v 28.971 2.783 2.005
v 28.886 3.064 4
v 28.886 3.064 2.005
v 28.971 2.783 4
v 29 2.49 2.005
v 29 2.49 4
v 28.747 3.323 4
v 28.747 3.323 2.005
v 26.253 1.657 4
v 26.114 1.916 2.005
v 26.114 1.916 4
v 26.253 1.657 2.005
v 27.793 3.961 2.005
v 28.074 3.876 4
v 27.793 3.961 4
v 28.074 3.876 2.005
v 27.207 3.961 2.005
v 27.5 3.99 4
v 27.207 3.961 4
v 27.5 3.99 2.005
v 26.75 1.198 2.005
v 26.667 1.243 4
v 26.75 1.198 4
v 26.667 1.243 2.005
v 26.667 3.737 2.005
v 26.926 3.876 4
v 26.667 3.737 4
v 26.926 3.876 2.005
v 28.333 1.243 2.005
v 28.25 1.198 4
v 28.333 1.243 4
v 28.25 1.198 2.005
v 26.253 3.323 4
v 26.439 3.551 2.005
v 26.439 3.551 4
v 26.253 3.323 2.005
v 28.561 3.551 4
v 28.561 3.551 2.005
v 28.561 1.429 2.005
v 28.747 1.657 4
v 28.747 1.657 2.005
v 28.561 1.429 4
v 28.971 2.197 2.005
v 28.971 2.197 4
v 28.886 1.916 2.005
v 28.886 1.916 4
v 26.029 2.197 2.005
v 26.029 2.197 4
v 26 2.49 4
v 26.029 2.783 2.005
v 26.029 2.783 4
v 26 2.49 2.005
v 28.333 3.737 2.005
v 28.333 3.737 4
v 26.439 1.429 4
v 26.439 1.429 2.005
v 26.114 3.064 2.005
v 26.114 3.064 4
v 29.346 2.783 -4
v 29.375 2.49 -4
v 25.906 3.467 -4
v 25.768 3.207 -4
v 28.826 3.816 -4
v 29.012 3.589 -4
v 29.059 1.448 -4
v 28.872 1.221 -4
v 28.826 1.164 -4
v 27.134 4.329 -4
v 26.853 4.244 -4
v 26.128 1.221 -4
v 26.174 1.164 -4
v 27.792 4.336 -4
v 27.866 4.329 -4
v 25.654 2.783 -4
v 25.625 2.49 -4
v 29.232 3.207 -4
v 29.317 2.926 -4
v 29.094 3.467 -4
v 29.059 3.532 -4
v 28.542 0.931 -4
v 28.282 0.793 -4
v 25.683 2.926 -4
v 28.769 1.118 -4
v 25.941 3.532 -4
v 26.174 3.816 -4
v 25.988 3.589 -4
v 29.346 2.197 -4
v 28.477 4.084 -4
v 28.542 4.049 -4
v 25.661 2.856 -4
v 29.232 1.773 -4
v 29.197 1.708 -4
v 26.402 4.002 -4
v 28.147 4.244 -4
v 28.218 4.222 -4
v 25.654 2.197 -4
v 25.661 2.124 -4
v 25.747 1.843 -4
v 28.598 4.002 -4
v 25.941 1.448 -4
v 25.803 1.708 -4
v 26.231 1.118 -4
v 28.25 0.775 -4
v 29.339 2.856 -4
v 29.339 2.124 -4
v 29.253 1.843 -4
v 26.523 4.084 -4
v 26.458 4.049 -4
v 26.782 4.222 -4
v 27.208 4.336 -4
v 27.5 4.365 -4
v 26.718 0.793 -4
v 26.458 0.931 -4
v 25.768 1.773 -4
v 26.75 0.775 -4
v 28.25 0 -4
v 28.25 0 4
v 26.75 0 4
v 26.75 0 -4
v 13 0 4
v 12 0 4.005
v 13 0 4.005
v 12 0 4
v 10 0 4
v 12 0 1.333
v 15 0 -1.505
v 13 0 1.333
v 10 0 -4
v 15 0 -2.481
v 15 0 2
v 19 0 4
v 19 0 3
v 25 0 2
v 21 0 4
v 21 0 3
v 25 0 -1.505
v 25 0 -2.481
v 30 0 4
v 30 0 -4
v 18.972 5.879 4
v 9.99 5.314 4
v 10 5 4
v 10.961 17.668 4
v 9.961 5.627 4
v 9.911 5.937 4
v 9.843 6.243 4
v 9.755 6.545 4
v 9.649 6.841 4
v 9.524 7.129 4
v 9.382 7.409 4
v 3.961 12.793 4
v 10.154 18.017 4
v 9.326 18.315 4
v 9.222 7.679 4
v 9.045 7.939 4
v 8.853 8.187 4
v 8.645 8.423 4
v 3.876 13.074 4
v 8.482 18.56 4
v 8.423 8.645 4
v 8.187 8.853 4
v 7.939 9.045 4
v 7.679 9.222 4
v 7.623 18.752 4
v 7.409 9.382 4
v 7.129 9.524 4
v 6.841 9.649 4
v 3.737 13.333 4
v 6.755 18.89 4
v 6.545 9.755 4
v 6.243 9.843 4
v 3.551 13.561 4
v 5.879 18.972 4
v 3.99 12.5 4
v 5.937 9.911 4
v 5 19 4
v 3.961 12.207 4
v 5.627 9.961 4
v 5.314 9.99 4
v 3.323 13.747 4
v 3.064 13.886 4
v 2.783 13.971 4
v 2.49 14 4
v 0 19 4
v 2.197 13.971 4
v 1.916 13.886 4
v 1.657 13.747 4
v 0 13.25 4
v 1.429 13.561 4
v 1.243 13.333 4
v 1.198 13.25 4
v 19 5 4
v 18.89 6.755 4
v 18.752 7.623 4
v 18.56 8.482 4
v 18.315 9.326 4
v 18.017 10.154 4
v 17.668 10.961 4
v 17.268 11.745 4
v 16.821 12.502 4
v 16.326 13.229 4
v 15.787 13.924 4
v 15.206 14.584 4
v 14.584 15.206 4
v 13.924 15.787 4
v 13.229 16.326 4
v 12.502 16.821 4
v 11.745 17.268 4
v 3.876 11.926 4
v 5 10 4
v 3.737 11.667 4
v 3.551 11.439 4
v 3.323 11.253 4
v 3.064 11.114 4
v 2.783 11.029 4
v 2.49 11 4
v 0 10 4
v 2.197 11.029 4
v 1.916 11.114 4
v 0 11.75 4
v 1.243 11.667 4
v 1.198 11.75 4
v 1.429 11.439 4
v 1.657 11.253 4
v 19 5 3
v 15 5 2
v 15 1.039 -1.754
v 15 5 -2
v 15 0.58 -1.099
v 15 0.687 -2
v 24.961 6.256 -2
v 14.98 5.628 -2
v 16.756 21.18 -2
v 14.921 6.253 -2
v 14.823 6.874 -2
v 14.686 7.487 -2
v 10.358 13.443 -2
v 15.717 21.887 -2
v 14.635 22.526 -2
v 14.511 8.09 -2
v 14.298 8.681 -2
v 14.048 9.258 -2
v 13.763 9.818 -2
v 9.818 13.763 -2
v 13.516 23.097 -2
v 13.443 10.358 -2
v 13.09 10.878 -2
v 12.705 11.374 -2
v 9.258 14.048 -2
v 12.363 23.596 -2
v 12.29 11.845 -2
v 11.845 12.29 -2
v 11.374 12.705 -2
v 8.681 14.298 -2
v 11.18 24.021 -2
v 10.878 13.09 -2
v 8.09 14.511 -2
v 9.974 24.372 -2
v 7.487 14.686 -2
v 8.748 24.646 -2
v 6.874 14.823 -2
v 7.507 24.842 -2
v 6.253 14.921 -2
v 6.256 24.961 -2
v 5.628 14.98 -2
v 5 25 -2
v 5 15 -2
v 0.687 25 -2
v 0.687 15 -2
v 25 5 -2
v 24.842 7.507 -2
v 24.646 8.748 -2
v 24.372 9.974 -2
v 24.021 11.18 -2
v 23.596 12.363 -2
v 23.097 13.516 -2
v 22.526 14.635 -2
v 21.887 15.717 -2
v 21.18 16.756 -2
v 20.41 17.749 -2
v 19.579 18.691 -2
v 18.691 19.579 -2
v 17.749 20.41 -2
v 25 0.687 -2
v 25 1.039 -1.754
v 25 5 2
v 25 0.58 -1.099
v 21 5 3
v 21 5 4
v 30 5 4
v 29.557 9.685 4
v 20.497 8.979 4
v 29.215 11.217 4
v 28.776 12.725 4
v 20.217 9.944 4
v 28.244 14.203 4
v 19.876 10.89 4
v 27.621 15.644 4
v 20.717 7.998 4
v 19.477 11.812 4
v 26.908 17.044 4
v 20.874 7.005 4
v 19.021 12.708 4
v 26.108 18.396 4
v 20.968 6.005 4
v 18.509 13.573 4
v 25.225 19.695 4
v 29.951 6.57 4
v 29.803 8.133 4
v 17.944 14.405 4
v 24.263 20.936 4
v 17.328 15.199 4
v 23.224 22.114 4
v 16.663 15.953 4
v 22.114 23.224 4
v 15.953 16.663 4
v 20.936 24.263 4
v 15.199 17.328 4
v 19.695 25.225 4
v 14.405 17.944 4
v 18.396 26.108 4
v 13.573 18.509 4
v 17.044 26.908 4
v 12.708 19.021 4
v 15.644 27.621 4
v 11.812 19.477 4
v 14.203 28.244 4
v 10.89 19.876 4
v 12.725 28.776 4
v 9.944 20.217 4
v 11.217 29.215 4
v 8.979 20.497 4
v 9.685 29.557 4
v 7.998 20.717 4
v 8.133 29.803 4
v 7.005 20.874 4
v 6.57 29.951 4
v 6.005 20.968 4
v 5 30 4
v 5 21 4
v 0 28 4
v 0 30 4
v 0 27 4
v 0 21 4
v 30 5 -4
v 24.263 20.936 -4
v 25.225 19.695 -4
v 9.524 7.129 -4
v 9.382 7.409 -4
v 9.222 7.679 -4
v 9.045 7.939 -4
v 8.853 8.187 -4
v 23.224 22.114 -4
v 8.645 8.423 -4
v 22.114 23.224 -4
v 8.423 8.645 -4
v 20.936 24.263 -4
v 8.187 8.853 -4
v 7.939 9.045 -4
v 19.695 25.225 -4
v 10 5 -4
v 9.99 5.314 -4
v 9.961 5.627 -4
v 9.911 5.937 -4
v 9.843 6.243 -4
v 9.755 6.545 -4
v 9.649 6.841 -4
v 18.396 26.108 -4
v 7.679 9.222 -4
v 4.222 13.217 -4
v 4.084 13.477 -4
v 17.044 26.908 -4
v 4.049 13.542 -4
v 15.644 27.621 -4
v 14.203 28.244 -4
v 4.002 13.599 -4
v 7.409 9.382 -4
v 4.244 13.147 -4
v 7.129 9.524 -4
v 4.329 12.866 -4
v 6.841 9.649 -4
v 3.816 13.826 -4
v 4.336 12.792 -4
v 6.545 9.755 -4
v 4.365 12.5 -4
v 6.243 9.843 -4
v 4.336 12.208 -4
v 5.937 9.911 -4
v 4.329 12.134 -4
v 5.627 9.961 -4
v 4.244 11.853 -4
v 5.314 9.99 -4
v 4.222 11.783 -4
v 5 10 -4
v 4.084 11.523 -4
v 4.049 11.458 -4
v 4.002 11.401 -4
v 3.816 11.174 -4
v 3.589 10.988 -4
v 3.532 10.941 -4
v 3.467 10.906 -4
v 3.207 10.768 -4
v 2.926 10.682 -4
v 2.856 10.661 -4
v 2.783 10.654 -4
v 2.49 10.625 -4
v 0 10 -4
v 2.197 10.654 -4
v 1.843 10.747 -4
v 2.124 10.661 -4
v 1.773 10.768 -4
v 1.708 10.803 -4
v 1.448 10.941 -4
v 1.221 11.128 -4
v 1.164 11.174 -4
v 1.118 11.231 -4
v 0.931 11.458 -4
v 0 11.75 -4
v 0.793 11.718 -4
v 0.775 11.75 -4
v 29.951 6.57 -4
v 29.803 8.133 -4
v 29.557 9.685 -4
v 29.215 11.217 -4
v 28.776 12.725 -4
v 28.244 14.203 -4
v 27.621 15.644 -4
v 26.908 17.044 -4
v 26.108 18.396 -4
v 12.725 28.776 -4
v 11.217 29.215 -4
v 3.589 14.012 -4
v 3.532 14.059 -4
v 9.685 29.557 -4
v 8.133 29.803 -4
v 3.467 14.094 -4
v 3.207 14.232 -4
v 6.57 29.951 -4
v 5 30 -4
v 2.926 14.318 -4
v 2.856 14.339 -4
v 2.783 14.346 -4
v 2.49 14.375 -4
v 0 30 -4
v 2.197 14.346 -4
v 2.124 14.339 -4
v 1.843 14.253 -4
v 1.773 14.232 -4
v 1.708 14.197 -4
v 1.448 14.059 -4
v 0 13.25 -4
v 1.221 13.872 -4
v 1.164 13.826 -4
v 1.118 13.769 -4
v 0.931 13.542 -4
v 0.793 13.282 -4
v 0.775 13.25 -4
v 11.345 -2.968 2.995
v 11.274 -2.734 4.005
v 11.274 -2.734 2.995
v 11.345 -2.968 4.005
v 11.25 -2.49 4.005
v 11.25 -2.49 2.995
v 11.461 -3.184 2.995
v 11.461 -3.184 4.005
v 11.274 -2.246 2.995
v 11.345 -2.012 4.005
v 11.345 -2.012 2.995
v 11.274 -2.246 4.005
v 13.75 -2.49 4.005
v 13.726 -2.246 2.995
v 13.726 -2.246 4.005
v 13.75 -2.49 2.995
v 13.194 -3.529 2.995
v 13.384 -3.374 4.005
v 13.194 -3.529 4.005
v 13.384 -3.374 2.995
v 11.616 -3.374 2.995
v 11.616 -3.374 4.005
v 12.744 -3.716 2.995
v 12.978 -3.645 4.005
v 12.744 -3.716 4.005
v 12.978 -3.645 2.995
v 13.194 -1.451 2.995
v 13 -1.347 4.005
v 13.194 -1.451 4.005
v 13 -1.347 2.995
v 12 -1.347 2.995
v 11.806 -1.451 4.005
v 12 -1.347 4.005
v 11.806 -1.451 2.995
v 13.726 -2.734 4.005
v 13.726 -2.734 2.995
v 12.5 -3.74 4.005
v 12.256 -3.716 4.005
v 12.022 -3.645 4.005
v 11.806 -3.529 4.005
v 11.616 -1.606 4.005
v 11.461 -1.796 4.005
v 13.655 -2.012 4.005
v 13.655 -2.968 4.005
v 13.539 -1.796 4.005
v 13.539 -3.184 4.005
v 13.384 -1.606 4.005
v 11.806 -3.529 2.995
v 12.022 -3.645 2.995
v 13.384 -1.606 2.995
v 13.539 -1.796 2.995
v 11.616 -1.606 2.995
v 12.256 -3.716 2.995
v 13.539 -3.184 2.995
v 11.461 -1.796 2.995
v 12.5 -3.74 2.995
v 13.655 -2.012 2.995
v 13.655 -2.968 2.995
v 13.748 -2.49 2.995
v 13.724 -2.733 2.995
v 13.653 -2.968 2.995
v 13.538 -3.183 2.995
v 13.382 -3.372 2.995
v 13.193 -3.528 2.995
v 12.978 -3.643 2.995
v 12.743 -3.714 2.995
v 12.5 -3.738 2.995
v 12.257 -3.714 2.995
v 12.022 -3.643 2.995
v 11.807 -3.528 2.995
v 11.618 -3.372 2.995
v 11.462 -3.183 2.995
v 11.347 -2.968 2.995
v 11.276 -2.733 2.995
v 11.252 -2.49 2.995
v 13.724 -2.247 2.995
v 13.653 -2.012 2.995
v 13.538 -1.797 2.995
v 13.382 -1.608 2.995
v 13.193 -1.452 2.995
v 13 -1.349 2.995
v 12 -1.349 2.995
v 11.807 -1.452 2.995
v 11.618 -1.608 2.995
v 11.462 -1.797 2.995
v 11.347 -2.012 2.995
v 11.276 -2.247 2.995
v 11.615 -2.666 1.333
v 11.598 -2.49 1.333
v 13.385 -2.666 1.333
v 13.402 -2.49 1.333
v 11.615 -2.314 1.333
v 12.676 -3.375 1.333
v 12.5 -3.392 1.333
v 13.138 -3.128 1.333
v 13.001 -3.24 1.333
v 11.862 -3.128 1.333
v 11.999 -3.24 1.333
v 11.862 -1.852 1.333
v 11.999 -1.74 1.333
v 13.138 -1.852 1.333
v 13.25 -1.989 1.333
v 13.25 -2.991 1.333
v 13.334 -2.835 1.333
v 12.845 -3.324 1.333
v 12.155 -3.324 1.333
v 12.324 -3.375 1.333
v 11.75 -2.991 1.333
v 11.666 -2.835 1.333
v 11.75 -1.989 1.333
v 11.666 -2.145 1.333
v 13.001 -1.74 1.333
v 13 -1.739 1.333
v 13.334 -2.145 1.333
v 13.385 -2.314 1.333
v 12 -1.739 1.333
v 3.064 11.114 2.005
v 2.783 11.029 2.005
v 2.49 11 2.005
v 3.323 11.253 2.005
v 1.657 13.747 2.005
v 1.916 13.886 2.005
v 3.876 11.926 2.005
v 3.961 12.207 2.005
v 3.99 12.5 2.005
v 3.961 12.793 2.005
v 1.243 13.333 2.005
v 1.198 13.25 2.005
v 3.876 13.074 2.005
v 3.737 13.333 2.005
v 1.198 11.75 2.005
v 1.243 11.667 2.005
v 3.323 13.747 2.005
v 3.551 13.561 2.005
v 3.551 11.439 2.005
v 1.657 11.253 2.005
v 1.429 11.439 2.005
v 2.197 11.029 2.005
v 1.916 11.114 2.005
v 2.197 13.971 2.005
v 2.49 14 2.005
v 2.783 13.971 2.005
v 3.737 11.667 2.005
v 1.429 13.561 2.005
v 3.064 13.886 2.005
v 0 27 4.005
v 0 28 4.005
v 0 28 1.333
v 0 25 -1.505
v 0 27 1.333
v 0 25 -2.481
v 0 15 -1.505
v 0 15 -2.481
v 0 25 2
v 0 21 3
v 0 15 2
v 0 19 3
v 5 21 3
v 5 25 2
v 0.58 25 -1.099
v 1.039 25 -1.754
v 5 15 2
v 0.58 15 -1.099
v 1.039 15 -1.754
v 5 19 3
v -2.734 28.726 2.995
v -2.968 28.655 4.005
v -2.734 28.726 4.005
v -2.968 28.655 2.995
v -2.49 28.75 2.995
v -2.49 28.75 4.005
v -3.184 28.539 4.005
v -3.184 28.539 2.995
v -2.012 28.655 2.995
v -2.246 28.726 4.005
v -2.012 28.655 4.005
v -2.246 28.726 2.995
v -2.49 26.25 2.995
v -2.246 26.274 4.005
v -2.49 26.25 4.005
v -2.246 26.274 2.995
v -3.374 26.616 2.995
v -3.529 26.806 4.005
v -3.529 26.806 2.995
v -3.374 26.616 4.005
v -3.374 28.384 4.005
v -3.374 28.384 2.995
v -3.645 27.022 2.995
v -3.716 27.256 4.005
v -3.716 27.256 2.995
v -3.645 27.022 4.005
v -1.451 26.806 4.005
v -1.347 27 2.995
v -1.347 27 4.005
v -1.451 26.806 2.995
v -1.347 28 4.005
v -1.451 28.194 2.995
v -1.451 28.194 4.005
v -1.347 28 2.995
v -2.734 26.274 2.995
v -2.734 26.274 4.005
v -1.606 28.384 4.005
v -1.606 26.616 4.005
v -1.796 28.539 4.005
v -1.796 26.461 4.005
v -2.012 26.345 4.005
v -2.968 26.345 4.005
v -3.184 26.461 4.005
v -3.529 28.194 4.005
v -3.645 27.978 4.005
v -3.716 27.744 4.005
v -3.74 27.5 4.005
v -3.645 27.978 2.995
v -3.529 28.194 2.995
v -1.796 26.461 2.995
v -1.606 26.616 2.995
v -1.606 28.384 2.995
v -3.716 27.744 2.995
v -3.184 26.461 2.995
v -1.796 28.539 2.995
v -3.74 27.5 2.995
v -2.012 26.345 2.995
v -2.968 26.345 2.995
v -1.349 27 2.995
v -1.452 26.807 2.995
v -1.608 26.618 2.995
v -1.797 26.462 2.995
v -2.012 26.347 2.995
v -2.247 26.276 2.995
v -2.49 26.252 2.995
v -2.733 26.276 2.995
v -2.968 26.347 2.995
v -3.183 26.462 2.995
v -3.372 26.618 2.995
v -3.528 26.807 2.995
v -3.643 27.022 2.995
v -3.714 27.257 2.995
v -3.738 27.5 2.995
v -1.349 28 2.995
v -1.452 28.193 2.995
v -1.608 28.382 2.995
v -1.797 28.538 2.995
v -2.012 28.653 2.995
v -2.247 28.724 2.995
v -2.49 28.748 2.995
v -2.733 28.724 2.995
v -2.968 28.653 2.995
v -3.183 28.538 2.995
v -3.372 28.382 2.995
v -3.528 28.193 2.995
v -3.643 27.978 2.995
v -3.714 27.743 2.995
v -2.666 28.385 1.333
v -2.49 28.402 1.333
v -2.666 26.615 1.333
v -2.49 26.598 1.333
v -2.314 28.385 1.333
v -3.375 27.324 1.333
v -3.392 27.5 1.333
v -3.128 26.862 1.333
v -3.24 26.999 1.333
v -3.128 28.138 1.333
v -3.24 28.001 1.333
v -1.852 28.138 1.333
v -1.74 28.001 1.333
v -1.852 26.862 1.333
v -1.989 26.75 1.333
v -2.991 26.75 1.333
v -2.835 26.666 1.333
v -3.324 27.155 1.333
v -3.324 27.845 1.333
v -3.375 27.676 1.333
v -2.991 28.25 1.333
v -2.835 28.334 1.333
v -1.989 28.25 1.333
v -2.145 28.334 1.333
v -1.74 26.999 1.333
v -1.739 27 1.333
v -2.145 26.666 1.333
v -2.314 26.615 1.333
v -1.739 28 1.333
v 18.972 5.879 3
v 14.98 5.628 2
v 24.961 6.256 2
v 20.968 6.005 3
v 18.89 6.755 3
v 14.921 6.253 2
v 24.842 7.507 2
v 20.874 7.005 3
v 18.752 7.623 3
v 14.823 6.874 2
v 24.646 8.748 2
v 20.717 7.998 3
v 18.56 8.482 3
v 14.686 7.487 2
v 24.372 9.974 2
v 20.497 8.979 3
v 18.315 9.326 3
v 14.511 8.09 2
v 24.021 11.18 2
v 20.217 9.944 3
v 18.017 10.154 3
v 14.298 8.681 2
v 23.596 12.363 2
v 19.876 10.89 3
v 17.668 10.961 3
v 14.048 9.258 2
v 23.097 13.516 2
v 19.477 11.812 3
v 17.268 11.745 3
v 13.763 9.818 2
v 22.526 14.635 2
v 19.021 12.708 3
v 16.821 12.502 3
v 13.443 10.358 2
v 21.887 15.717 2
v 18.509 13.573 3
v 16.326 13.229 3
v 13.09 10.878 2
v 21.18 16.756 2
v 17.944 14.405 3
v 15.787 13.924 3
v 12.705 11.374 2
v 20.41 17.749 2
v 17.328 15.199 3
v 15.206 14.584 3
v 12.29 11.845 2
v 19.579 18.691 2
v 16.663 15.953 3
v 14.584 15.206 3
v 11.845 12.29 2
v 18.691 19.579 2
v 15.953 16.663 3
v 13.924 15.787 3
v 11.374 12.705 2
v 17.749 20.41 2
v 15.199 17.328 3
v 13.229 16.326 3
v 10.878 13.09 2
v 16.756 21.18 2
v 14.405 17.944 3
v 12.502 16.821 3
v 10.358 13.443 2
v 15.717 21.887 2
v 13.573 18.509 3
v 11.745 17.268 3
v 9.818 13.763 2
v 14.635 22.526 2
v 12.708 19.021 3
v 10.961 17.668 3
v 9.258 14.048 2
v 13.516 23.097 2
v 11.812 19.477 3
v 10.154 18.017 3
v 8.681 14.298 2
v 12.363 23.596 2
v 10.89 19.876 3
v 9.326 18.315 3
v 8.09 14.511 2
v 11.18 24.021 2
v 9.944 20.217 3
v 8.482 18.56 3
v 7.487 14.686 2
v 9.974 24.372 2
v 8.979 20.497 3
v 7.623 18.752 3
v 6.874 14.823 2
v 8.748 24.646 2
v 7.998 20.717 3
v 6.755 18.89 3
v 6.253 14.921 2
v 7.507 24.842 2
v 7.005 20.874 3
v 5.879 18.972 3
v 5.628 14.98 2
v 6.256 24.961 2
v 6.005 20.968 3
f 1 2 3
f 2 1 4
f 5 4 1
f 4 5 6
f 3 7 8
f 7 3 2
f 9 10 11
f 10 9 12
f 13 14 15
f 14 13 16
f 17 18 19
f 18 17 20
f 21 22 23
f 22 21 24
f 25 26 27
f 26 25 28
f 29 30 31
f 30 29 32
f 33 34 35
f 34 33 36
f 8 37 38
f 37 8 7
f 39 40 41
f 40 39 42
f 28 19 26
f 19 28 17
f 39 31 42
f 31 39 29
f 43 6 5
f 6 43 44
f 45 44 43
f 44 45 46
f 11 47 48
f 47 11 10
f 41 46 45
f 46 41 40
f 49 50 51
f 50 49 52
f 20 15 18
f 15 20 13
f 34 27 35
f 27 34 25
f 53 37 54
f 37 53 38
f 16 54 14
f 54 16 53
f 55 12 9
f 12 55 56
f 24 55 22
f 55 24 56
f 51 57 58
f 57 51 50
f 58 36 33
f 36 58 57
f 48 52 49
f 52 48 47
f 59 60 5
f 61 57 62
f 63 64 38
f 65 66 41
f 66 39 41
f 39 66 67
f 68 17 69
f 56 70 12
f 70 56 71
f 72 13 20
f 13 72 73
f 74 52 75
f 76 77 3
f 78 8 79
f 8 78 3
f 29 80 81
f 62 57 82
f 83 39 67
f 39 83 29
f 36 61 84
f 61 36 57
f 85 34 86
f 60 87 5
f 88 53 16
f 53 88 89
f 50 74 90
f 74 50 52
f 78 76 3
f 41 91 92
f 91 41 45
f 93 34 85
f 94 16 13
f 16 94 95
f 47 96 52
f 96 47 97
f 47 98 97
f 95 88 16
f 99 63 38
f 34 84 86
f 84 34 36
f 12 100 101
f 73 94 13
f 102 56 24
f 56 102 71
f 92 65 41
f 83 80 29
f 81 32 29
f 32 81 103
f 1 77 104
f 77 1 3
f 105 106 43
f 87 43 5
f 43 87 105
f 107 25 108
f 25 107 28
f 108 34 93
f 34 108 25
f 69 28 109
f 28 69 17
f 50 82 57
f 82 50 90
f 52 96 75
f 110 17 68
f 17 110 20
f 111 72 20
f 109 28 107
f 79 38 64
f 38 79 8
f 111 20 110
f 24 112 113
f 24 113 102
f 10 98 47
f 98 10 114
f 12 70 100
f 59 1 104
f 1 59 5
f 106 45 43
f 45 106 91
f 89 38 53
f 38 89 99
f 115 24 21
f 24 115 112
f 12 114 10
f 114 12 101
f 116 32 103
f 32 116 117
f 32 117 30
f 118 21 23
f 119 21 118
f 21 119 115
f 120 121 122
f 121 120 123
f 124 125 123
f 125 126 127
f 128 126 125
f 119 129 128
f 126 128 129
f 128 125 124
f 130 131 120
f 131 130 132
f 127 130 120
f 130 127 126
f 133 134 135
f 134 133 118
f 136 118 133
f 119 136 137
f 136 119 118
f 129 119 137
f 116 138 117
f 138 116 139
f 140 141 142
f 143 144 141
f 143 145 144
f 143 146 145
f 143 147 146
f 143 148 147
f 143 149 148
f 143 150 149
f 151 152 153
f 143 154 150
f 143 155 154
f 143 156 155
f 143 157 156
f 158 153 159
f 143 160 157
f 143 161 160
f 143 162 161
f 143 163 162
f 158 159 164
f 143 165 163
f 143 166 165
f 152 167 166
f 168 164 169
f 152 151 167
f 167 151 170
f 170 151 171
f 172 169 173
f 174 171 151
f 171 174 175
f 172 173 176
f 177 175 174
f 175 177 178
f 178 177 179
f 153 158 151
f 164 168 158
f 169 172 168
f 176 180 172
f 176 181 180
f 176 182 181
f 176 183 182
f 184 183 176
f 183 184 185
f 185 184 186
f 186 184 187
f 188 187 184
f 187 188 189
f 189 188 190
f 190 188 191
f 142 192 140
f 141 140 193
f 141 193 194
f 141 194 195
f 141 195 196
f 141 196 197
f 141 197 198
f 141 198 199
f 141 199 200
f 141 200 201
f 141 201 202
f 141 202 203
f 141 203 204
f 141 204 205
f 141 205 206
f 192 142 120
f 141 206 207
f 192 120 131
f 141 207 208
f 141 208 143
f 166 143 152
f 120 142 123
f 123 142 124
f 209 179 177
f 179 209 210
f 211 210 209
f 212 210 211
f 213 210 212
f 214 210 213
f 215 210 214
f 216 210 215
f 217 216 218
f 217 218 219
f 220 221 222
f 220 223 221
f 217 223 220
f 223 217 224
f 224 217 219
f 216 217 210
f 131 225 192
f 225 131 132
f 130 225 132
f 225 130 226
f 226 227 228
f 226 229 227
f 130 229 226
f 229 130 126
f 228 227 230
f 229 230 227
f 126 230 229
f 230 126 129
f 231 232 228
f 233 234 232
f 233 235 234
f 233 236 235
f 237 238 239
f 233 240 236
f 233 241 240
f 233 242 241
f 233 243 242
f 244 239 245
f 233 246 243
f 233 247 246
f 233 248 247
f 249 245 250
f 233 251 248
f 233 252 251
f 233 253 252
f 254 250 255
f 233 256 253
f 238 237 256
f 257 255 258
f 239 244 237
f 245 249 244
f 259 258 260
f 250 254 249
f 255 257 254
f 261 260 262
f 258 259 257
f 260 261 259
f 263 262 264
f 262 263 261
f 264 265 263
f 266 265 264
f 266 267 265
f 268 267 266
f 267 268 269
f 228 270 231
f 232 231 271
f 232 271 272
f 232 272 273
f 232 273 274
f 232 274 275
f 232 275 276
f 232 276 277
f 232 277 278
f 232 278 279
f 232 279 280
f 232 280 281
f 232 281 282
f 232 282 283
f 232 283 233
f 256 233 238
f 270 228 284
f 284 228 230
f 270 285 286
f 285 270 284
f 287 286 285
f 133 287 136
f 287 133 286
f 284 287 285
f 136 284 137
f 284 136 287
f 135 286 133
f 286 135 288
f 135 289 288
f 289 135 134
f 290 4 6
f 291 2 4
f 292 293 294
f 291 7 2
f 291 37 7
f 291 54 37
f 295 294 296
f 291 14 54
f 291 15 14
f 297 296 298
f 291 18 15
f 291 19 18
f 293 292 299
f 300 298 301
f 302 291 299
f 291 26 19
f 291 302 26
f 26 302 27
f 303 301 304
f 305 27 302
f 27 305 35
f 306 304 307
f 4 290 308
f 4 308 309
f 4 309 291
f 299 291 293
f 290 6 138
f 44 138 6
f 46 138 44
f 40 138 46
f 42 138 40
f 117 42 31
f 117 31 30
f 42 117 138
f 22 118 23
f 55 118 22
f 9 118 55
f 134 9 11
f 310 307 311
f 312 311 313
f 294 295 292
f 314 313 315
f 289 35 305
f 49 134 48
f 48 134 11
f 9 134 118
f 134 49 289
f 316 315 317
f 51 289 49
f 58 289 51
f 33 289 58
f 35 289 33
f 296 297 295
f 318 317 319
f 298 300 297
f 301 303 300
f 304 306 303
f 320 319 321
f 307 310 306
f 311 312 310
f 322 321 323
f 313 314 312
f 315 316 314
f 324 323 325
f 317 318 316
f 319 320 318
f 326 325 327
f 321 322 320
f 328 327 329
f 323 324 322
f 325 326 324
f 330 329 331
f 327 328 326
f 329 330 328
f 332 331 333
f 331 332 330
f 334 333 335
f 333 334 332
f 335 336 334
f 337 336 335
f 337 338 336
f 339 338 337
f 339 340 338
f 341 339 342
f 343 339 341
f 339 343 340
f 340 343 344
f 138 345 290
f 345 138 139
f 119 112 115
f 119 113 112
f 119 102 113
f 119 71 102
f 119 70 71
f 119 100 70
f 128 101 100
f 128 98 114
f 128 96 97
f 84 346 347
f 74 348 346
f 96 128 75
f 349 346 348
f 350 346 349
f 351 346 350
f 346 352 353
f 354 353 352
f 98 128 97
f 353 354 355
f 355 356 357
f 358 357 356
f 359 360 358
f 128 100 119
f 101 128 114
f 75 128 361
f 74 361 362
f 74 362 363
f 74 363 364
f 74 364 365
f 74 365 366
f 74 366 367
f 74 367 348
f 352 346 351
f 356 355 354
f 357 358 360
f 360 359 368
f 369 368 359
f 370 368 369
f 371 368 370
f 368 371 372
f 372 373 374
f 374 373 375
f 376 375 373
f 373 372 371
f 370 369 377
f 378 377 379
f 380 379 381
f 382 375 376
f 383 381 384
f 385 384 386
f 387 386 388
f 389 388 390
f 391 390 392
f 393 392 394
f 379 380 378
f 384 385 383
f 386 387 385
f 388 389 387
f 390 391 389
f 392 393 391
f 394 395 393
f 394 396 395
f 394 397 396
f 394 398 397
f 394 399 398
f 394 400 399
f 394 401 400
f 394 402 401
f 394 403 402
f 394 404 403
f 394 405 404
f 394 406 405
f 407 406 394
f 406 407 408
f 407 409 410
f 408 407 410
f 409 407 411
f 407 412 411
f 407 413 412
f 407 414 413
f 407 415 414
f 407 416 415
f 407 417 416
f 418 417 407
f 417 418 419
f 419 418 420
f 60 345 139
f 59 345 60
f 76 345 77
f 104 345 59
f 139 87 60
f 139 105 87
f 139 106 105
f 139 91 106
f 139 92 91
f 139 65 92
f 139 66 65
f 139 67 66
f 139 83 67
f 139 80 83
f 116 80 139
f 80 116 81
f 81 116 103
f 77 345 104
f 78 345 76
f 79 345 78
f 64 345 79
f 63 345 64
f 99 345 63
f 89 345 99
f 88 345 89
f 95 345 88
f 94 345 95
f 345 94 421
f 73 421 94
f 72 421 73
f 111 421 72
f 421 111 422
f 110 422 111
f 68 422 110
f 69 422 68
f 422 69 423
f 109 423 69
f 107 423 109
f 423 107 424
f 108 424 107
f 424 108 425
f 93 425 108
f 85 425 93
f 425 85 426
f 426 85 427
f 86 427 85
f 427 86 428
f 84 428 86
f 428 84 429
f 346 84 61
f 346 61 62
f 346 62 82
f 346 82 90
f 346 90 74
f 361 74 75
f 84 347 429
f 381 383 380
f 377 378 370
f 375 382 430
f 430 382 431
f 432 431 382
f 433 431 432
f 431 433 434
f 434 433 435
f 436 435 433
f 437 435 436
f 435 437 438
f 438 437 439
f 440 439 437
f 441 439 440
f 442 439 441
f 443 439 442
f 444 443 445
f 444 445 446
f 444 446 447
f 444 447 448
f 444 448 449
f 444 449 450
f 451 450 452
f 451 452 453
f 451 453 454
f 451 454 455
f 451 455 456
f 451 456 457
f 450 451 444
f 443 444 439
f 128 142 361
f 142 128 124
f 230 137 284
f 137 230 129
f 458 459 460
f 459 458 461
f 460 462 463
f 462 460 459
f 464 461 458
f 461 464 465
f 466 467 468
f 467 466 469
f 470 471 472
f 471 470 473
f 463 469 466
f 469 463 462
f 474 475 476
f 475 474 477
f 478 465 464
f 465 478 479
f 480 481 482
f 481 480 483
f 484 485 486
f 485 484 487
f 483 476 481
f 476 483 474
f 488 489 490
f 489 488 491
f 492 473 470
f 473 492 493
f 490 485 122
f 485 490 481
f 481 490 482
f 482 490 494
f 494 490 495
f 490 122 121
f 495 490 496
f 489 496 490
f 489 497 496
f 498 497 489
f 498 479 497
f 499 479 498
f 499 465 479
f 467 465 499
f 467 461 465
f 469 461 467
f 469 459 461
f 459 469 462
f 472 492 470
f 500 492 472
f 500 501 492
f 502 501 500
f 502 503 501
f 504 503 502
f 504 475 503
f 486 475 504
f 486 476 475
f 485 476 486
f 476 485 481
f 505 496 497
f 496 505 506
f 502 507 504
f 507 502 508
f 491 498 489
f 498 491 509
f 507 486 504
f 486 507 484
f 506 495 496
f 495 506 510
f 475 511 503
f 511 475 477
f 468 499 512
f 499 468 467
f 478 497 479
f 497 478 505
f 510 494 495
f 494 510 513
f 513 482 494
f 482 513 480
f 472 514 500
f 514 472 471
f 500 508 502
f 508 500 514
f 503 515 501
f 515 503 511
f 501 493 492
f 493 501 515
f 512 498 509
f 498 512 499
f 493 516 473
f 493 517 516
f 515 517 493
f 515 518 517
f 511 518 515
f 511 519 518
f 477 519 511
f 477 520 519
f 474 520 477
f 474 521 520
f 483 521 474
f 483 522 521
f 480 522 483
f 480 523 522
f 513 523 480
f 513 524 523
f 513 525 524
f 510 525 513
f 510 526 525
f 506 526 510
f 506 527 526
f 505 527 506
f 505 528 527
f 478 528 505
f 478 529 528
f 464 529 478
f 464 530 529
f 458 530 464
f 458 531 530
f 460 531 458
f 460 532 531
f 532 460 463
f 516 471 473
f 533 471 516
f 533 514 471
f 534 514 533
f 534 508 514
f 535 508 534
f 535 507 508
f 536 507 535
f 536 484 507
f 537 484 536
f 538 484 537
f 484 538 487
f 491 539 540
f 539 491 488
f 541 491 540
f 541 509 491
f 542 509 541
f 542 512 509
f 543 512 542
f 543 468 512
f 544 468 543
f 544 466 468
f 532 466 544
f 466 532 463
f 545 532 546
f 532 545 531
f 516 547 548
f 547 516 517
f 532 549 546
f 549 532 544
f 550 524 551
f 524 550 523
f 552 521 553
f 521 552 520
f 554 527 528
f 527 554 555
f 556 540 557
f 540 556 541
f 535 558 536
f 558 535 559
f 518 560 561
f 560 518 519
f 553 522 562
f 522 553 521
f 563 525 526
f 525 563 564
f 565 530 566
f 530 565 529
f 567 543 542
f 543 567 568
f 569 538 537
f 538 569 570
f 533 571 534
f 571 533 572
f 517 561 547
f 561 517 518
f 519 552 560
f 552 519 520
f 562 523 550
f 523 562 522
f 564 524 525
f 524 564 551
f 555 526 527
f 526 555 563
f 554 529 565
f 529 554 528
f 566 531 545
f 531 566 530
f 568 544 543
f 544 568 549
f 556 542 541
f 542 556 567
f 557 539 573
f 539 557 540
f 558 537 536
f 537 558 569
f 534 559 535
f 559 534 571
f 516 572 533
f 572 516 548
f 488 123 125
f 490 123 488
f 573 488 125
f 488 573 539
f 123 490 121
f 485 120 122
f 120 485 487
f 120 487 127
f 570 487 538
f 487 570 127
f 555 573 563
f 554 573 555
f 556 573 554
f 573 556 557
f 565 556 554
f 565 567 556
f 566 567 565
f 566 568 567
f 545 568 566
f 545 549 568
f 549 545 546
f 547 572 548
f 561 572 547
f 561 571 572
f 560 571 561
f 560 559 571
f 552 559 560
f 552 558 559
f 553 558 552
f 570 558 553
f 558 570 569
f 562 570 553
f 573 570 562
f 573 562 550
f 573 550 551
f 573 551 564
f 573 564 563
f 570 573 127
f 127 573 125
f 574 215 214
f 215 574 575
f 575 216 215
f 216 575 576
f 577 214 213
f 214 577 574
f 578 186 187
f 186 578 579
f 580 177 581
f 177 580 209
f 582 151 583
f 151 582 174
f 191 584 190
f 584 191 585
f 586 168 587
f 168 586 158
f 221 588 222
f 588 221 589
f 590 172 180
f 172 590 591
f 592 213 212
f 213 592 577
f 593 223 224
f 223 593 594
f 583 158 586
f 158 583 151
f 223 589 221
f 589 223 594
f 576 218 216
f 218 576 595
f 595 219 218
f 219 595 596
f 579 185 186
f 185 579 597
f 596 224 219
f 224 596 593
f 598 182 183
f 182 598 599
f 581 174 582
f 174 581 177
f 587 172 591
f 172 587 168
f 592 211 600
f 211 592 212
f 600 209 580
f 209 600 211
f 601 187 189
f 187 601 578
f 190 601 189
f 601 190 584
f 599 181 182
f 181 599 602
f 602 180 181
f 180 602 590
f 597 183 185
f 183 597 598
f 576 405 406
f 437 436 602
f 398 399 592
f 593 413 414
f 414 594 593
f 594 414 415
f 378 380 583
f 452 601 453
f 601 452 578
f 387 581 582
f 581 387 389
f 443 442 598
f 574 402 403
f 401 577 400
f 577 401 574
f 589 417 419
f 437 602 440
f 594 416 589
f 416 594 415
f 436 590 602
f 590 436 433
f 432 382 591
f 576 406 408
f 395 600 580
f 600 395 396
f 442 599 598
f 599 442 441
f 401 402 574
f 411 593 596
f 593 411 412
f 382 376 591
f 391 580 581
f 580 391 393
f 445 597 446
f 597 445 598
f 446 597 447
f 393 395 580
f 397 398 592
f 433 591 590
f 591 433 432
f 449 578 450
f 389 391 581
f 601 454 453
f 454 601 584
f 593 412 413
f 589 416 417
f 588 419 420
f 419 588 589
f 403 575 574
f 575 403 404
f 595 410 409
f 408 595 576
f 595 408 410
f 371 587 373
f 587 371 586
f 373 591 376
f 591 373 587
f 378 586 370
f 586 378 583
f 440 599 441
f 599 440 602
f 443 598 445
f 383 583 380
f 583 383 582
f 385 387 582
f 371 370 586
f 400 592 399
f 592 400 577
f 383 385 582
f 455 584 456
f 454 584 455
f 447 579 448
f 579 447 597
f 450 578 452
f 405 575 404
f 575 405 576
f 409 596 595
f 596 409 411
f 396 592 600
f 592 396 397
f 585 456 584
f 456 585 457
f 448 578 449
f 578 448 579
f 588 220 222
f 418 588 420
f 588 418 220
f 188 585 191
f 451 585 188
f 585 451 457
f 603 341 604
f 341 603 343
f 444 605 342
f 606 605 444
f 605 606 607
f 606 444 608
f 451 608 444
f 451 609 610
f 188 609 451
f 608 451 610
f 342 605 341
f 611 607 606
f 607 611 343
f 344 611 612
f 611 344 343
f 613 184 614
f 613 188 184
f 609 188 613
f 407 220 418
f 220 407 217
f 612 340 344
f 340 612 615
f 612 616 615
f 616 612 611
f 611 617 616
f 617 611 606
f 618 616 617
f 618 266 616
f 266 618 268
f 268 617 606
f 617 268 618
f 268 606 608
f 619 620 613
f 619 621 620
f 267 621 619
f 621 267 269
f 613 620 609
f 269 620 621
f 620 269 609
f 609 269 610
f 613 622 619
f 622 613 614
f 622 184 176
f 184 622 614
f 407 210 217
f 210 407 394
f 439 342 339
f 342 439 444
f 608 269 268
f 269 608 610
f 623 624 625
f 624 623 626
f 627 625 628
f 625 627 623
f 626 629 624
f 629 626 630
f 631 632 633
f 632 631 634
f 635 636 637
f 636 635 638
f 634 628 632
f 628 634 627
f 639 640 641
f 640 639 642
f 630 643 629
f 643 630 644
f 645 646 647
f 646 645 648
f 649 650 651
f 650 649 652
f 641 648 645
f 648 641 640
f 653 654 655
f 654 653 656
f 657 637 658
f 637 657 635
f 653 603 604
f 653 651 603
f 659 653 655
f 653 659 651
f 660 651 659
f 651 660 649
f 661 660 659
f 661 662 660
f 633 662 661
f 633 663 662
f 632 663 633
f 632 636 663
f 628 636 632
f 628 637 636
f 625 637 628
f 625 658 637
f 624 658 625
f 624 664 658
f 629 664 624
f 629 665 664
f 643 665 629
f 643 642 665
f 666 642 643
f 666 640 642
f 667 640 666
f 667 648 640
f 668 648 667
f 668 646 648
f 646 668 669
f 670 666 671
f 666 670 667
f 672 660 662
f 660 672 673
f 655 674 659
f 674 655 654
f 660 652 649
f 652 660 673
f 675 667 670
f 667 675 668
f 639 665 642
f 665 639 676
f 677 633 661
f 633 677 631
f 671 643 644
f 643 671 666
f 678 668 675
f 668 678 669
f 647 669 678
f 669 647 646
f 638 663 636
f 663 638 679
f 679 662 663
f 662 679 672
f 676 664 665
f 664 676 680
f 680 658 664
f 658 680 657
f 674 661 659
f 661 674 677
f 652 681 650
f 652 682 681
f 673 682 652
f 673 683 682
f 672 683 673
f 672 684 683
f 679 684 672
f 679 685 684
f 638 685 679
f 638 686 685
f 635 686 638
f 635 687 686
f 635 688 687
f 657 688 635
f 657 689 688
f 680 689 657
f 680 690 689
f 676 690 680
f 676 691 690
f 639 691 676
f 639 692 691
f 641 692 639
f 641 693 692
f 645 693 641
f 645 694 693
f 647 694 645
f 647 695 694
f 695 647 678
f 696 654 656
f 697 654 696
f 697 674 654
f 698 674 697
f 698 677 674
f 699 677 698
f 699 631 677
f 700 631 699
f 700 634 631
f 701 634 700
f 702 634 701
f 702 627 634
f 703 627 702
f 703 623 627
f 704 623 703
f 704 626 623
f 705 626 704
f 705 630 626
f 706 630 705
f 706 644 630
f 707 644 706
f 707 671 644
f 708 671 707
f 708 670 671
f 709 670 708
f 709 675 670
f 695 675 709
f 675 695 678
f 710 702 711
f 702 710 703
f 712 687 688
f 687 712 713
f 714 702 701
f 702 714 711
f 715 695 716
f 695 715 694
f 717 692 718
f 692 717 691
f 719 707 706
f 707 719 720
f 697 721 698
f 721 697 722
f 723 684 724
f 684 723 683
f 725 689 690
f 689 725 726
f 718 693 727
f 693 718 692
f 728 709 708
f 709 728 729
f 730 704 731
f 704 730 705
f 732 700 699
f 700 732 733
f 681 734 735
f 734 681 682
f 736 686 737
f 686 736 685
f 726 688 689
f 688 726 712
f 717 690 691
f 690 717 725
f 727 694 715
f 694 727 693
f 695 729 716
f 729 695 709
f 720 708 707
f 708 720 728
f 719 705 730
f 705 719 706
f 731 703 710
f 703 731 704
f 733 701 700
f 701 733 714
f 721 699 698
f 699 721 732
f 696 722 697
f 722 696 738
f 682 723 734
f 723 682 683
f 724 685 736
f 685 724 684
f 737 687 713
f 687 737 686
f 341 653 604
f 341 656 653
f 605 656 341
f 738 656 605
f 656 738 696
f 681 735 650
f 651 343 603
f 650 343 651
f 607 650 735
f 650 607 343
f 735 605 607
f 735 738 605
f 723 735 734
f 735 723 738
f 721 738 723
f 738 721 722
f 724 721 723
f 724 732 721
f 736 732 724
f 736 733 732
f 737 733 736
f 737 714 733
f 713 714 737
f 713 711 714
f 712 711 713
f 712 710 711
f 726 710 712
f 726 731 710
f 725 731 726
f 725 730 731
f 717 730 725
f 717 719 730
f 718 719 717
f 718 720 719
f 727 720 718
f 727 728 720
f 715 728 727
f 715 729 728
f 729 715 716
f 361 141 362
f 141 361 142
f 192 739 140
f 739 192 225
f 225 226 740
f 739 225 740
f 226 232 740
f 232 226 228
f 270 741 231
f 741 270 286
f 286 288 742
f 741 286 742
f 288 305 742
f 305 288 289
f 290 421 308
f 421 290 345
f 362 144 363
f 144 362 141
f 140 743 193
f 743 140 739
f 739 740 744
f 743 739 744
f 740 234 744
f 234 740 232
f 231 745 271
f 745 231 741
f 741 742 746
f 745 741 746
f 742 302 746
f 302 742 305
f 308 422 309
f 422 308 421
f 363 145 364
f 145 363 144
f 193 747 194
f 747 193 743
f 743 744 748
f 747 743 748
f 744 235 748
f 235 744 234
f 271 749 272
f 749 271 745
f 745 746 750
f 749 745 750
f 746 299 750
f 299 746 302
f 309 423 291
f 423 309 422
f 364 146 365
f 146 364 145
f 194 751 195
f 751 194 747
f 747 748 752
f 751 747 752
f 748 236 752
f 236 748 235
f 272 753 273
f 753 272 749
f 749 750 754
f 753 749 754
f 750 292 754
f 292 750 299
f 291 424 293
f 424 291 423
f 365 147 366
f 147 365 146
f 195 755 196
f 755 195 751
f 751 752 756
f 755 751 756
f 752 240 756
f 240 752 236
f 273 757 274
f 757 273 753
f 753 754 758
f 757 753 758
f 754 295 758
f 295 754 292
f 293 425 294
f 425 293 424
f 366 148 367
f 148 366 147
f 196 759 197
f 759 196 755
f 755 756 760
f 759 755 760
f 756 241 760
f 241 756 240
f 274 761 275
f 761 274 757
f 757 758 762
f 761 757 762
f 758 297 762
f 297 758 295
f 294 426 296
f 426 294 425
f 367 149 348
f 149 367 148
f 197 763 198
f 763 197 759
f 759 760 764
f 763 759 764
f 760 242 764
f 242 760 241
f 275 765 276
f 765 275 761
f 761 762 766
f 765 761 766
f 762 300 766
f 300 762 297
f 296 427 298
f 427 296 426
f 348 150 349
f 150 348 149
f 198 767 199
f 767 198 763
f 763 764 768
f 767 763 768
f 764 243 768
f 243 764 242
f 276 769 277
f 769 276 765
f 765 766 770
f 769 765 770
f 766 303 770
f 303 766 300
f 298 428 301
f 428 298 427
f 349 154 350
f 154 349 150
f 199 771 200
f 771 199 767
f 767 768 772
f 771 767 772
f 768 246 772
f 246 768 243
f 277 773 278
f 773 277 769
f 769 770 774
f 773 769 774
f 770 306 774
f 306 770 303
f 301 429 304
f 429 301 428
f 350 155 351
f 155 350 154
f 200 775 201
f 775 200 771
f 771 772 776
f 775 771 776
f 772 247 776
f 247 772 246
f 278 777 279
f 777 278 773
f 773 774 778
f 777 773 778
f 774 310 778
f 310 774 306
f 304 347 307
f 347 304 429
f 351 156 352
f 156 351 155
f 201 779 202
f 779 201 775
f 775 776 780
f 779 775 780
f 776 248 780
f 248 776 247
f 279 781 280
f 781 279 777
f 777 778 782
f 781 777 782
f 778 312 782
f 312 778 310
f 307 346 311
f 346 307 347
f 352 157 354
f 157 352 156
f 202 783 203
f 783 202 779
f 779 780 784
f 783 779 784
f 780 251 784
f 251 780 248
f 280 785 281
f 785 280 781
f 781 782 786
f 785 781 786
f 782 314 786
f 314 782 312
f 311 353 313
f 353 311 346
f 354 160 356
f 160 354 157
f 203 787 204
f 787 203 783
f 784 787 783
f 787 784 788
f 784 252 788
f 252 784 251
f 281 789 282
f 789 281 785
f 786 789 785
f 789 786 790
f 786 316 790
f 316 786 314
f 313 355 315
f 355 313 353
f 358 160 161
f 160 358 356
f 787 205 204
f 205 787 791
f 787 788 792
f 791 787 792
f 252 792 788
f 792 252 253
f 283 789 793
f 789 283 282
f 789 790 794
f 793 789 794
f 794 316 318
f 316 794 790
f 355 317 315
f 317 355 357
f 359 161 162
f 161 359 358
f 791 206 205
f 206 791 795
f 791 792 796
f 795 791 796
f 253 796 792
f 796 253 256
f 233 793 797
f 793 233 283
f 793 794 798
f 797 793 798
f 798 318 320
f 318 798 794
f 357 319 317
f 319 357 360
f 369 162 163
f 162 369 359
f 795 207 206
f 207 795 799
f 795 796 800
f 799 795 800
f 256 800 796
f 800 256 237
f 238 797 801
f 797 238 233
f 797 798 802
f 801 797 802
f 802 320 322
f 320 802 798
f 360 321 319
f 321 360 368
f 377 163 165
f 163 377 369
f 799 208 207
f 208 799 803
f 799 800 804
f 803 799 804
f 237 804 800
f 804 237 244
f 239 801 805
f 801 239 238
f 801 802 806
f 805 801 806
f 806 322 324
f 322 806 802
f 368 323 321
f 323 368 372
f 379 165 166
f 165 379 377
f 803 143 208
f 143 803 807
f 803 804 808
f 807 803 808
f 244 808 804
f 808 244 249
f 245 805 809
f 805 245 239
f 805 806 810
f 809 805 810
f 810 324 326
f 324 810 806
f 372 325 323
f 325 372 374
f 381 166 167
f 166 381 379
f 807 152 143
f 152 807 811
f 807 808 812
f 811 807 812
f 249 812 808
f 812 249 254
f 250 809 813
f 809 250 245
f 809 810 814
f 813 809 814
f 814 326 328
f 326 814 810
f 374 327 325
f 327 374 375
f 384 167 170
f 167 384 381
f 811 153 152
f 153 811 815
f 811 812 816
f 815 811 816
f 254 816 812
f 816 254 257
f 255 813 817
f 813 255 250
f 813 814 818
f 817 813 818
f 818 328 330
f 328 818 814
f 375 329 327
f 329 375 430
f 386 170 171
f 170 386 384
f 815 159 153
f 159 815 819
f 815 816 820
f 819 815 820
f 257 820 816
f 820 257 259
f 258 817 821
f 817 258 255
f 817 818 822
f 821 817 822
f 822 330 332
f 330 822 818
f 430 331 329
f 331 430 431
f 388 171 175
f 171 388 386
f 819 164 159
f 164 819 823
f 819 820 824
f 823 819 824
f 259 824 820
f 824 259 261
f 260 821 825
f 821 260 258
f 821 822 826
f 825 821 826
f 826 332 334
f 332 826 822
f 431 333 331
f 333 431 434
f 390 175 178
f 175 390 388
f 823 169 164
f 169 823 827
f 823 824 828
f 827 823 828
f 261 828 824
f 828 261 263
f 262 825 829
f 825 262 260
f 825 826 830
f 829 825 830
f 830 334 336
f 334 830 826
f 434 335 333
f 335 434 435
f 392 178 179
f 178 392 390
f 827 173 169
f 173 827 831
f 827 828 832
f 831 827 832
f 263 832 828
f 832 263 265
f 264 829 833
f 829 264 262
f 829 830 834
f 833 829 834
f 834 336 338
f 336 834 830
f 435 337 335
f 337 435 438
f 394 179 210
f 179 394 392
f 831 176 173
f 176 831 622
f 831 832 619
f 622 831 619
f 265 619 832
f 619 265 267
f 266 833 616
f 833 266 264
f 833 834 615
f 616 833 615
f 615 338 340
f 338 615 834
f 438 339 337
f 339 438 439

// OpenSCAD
/*

  ttt_curve90_1.scad

  (c) olikraus@gmail.com

  This work is licensed under the Creative Commons Attribution-NonCommercial-ShareAlike 4.0 International License. 
  To view a copy of this license, visit http://creativecommons.org/licenses/by-nc-sa/4.0/.
  
  90 degree one tile train tube track
*/
include <train_tube_track.scad>;

ttt_curve90_1();
